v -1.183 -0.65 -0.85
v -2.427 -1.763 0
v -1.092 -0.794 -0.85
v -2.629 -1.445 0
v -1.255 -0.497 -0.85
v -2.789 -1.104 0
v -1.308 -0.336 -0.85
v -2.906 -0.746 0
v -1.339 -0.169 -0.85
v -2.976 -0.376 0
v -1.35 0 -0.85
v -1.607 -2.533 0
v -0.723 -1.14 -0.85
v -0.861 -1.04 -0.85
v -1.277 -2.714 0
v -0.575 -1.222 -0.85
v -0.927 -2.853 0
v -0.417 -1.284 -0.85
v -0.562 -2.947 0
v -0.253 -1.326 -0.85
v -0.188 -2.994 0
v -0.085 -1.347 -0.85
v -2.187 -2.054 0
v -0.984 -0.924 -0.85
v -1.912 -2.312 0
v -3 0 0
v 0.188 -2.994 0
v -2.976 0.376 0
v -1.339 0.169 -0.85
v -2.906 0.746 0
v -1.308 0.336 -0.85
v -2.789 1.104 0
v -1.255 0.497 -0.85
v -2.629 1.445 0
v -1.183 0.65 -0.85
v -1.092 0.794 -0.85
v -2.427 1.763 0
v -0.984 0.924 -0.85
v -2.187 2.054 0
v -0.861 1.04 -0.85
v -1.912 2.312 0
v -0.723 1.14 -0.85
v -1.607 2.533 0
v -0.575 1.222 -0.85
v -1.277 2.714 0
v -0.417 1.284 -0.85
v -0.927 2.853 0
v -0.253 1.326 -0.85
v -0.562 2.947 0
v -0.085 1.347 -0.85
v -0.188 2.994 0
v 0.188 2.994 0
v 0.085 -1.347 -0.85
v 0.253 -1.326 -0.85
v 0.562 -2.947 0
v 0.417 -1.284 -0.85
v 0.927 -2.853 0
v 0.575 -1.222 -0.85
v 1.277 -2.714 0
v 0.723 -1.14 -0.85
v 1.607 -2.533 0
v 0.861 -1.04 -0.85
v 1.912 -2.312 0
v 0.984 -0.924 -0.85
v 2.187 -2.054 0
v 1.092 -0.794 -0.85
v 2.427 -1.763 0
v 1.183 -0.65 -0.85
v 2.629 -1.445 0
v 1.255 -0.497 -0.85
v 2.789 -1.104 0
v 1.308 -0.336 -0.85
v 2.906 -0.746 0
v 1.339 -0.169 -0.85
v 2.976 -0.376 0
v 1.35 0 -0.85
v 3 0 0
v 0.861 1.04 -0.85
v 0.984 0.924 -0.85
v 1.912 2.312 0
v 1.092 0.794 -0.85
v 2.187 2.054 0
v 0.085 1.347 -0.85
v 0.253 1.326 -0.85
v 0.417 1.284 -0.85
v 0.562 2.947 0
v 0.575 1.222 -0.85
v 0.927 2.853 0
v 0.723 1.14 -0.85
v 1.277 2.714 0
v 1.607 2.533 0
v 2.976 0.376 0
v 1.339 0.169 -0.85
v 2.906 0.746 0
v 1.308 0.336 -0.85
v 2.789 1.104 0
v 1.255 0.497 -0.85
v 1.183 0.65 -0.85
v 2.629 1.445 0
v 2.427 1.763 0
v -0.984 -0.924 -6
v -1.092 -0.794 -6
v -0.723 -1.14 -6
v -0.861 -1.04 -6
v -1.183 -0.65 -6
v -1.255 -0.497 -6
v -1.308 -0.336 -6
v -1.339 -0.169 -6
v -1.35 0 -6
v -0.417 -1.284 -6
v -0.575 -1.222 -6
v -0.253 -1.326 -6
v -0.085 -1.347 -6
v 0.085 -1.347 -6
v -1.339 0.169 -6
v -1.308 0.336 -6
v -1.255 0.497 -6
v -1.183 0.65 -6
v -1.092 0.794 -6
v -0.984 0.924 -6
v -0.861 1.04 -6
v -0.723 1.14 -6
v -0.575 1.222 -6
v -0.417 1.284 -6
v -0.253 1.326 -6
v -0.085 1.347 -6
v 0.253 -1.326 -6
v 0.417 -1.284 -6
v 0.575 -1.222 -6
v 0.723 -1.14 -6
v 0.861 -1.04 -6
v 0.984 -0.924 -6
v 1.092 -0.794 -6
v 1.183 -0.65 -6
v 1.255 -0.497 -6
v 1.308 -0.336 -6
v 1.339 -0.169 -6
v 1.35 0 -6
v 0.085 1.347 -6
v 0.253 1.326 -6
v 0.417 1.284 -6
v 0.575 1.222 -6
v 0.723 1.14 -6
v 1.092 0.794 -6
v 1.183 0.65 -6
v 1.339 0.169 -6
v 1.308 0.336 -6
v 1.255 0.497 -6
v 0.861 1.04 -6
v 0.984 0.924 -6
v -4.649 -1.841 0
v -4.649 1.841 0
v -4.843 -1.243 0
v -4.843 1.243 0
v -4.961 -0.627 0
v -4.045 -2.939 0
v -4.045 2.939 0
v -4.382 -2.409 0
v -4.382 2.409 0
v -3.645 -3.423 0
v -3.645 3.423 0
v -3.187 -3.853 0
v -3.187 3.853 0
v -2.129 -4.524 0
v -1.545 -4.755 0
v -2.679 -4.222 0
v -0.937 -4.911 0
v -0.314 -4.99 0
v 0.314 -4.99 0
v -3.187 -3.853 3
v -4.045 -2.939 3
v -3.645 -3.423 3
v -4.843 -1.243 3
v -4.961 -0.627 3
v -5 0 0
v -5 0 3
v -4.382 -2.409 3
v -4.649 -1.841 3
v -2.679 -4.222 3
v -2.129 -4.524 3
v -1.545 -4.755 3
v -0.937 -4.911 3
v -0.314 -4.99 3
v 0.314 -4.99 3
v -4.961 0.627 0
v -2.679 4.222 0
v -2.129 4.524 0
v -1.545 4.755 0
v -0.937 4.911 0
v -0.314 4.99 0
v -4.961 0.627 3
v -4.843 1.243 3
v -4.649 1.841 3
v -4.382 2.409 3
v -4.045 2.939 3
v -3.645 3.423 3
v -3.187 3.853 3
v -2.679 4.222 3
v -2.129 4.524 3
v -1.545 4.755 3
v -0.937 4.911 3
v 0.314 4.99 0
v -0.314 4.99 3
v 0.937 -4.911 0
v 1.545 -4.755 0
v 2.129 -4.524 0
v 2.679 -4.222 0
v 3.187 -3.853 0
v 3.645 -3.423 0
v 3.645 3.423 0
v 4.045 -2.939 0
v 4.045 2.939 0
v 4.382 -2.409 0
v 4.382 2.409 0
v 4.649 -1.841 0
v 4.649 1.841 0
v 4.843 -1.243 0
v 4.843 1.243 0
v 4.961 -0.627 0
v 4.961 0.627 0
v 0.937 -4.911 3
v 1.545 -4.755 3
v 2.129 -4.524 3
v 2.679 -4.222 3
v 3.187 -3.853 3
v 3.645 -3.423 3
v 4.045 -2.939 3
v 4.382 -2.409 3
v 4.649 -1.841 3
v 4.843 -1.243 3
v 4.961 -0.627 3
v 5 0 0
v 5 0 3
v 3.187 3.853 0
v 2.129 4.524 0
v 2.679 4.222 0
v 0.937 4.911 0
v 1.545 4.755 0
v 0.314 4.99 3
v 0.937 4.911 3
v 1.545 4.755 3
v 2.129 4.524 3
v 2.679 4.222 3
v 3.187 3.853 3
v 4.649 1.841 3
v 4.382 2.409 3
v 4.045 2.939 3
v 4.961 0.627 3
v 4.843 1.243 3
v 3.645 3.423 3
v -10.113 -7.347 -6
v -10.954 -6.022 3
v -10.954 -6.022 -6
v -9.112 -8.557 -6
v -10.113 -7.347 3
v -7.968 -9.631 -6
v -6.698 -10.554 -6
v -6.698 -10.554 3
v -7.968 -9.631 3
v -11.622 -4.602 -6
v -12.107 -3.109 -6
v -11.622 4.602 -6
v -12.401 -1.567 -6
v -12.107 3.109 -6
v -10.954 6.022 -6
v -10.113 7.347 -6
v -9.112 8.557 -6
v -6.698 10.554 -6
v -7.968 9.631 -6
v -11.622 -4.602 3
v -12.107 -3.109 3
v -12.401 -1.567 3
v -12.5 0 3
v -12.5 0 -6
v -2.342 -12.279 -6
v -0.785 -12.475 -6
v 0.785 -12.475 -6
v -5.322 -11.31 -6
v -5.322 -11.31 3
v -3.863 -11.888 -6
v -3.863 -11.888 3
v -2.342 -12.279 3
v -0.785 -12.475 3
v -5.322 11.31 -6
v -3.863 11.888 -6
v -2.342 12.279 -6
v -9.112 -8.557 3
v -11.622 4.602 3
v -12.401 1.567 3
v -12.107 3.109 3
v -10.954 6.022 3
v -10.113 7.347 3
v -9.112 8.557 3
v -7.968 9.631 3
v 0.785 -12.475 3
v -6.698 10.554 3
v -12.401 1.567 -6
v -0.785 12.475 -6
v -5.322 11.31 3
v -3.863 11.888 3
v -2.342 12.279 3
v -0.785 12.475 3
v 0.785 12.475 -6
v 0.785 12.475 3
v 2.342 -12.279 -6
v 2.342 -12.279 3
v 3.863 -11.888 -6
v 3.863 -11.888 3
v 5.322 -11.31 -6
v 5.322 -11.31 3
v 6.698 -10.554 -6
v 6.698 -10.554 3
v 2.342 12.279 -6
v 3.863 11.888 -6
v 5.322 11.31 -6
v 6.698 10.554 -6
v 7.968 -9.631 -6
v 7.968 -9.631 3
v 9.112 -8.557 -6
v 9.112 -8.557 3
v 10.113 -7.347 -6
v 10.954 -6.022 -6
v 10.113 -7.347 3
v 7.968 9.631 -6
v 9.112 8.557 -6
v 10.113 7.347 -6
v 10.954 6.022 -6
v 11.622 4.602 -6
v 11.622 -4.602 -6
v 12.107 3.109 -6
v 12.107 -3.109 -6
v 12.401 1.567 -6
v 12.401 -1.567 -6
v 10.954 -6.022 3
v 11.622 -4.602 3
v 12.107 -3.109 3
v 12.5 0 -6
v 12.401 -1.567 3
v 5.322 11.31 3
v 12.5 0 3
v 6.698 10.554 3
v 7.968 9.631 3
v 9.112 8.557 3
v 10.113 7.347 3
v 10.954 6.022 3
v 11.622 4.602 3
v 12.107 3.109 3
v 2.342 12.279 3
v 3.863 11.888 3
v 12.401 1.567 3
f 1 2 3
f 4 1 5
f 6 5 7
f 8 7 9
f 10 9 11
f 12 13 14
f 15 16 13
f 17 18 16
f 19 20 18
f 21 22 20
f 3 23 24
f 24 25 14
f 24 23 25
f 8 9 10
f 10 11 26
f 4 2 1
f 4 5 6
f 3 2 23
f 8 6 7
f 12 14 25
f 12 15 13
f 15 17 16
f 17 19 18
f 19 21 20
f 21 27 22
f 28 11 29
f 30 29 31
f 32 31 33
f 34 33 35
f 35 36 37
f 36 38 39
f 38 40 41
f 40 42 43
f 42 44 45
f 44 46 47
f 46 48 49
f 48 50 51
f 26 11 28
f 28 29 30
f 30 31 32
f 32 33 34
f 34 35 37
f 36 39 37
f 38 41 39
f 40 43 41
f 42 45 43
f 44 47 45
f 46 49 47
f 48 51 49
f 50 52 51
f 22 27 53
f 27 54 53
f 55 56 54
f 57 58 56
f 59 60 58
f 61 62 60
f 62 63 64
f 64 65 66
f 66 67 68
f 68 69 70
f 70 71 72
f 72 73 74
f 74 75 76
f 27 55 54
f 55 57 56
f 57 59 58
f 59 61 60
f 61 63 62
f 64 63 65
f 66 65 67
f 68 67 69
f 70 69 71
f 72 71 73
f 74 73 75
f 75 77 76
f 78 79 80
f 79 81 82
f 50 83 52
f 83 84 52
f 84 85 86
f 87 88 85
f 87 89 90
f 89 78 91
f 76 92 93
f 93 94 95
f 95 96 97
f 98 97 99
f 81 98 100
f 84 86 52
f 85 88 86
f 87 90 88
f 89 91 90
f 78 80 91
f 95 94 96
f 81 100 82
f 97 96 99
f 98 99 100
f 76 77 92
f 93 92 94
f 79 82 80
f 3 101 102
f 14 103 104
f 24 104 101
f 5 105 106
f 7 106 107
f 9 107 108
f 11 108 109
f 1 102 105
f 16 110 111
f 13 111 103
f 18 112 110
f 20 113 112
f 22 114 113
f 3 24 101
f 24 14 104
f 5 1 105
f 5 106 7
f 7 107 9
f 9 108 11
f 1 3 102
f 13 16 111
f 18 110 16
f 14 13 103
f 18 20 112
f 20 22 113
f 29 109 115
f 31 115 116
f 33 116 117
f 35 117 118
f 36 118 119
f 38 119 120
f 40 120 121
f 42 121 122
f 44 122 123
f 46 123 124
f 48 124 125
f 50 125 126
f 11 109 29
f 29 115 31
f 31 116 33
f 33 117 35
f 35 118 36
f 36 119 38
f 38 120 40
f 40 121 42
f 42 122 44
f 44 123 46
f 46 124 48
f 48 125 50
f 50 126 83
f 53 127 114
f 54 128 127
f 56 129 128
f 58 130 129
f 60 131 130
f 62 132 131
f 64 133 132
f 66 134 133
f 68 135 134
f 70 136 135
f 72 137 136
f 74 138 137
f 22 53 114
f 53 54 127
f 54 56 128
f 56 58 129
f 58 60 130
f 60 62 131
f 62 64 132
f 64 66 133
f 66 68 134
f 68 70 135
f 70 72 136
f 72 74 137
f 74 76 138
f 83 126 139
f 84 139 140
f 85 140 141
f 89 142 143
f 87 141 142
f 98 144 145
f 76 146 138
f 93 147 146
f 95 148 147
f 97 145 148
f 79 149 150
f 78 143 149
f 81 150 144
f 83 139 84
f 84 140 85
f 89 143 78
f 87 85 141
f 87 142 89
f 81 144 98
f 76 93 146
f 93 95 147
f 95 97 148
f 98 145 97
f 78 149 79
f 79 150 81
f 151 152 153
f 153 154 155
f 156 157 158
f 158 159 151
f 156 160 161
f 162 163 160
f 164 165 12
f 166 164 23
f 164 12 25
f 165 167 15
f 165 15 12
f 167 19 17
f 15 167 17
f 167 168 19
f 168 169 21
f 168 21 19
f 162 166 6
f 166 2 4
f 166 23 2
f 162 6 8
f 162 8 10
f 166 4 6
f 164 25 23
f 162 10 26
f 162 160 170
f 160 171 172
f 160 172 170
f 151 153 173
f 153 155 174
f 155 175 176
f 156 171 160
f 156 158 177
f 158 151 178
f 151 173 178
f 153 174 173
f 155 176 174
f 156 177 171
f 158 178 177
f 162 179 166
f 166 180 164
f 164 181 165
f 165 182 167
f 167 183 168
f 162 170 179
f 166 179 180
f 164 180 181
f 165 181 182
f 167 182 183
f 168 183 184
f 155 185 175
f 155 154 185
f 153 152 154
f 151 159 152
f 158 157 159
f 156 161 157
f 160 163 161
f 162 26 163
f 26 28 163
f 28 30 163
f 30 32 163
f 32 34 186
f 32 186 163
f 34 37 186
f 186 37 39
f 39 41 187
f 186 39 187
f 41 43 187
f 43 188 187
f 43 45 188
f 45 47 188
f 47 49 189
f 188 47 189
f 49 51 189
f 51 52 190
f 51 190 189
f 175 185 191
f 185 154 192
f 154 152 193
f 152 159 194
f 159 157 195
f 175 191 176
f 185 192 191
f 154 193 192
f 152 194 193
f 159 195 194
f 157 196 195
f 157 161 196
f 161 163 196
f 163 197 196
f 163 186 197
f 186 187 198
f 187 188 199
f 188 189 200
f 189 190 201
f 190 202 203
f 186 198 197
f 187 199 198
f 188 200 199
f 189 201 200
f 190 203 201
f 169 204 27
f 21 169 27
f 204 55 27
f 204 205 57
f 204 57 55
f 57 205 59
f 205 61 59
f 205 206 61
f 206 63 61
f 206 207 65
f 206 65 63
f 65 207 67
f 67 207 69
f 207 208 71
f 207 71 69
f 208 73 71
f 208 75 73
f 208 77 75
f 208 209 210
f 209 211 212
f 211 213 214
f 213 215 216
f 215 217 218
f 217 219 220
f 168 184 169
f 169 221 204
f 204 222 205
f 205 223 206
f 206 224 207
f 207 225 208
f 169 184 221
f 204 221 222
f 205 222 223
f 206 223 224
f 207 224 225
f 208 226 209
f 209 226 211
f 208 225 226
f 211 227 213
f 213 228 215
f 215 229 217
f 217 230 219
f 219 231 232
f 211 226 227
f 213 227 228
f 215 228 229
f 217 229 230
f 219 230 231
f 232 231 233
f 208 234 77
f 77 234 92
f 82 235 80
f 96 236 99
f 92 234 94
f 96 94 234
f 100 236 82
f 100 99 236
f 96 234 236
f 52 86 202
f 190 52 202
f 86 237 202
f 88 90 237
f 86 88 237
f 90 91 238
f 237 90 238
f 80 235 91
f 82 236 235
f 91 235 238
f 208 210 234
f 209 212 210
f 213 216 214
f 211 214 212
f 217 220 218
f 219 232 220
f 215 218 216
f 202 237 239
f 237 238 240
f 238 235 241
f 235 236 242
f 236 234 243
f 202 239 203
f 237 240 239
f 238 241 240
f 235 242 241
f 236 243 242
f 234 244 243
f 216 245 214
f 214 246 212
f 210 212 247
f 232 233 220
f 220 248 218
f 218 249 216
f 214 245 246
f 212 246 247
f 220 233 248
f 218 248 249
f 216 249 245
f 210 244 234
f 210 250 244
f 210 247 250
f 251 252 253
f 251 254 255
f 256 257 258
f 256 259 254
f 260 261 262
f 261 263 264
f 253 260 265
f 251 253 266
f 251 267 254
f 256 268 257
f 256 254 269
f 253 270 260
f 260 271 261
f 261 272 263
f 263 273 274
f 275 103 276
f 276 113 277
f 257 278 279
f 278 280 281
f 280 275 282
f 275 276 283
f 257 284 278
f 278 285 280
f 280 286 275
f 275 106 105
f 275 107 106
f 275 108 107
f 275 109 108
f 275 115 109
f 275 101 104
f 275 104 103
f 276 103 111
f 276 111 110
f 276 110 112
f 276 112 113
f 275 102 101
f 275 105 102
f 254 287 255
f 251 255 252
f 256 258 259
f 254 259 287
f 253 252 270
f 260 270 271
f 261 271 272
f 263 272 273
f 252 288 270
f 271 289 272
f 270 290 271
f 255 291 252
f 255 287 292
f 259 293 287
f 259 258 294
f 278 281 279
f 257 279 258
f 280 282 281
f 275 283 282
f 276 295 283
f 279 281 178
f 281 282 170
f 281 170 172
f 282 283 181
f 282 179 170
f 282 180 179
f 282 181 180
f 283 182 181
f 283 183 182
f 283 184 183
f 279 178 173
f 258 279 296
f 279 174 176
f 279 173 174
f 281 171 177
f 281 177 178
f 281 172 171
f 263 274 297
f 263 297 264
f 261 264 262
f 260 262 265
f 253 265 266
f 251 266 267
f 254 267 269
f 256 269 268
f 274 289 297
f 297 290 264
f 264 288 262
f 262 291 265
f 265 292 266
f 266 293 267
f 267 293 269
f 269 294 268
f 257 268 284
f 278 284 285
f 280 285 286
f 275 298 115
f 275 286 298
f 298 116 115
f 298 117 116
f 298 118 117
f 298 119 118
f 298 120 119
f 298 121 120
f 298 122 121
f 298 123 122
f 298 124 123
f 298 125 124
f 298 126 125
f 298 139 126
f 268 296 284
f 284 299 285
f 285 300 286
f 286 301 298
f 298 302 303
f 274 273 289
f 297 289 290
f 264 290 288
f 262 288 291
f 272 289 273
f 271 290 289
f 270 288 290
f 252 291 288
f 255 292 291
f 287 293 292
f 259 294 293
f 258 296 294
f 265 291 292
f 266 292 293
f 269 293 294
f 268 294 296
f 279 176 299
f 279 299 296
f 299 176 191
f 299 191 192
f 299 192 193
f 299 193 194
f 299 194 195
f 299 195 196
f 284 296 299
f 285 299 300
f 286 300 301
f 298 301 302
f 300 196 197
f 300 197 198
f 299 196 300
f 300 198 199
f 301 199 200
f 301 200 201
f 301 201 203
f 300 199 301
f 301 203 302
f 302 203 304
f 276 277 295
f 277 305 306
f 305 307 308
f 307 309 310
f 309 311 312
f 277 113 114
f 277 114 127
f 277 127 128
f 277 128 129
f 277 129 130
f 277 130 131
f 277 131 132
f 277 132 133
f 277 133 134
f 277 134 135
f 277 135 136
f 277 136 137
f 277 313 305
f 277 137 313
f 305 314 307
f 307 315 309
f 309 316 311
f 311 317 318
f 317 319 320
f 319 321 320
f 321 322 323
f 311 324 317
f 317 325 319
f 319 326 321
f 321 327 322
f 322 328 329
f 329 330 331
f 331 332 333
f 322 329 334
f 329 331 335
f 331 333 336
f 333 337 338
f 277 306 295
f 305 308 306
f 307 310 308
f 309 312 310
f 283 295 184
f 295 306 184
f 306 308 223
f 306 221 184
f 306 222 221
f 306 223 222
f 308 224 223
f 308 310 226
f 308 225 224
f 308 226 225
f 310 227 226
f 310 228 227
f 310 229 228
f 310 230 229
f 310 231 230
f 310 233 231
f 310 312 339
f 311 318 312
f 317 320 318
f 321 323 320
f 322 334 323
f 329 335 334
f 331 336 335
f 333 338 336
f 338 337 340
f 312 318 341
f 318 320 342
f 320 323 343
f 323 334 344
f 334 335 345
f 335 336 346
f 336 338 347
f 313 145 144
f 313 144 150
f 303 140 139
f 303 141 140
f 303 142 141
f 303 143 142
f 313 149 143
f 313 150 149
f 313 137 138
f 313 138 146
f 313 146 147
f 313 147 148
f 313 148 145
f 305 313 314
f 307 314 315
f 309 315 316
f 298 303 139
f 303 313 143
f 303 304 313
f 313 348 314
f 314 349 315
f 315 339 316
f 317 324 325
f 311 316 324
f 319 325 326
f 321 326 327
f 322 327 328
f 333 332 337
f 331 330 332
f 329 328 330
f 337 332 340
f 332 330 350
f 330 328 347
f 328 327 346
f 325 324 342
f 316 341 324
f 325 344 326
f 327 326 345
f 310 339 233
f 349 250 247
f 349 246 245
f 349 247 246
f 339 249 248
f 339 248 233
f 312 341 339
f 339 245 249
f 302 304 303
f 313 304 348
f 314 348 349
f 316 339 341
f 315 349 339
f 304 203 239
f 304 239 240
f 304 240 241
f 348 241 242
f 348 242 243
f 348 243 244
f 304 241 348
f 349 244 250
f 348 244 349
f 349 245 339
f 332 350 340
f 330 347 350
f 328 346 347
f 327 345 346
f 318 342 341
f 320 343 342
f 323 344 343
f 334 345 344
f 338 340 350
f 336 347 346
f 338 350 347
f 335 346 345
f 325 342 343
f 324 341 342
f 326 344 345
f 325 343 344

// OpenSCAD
$fn = 50;

difference() {
	union() {
		translate(v = [0, 0, -6.0]) {
			cylinder(h = 9, r = 12.5);
		}
	}
	union() {
		translate(v = [0, 0, 0]) {
			rotate(a = [0, 0, 0]) {
				difference() {
					union() {
						translate(v = [0, 0, -9.0]) {
							cylinder(h = 9, r = 1.0);
						}
						translate(v = [0, 0, -0.85]) {
							cylinder(h = 0.85, r1 = 1.35, r2 = 3.0);
						}
						translate(v = [0, 0, -9.0]) {
							cylinder(h = 9, r = 1.35);
						}
						translate(v = [0, 0, -9.0]) {
							cylinder(h = 9, r = 1.0);
						}
					}
					union();
				}
			}
		}
		#cylinder(h = 3, r = 5.0);
	}
}
